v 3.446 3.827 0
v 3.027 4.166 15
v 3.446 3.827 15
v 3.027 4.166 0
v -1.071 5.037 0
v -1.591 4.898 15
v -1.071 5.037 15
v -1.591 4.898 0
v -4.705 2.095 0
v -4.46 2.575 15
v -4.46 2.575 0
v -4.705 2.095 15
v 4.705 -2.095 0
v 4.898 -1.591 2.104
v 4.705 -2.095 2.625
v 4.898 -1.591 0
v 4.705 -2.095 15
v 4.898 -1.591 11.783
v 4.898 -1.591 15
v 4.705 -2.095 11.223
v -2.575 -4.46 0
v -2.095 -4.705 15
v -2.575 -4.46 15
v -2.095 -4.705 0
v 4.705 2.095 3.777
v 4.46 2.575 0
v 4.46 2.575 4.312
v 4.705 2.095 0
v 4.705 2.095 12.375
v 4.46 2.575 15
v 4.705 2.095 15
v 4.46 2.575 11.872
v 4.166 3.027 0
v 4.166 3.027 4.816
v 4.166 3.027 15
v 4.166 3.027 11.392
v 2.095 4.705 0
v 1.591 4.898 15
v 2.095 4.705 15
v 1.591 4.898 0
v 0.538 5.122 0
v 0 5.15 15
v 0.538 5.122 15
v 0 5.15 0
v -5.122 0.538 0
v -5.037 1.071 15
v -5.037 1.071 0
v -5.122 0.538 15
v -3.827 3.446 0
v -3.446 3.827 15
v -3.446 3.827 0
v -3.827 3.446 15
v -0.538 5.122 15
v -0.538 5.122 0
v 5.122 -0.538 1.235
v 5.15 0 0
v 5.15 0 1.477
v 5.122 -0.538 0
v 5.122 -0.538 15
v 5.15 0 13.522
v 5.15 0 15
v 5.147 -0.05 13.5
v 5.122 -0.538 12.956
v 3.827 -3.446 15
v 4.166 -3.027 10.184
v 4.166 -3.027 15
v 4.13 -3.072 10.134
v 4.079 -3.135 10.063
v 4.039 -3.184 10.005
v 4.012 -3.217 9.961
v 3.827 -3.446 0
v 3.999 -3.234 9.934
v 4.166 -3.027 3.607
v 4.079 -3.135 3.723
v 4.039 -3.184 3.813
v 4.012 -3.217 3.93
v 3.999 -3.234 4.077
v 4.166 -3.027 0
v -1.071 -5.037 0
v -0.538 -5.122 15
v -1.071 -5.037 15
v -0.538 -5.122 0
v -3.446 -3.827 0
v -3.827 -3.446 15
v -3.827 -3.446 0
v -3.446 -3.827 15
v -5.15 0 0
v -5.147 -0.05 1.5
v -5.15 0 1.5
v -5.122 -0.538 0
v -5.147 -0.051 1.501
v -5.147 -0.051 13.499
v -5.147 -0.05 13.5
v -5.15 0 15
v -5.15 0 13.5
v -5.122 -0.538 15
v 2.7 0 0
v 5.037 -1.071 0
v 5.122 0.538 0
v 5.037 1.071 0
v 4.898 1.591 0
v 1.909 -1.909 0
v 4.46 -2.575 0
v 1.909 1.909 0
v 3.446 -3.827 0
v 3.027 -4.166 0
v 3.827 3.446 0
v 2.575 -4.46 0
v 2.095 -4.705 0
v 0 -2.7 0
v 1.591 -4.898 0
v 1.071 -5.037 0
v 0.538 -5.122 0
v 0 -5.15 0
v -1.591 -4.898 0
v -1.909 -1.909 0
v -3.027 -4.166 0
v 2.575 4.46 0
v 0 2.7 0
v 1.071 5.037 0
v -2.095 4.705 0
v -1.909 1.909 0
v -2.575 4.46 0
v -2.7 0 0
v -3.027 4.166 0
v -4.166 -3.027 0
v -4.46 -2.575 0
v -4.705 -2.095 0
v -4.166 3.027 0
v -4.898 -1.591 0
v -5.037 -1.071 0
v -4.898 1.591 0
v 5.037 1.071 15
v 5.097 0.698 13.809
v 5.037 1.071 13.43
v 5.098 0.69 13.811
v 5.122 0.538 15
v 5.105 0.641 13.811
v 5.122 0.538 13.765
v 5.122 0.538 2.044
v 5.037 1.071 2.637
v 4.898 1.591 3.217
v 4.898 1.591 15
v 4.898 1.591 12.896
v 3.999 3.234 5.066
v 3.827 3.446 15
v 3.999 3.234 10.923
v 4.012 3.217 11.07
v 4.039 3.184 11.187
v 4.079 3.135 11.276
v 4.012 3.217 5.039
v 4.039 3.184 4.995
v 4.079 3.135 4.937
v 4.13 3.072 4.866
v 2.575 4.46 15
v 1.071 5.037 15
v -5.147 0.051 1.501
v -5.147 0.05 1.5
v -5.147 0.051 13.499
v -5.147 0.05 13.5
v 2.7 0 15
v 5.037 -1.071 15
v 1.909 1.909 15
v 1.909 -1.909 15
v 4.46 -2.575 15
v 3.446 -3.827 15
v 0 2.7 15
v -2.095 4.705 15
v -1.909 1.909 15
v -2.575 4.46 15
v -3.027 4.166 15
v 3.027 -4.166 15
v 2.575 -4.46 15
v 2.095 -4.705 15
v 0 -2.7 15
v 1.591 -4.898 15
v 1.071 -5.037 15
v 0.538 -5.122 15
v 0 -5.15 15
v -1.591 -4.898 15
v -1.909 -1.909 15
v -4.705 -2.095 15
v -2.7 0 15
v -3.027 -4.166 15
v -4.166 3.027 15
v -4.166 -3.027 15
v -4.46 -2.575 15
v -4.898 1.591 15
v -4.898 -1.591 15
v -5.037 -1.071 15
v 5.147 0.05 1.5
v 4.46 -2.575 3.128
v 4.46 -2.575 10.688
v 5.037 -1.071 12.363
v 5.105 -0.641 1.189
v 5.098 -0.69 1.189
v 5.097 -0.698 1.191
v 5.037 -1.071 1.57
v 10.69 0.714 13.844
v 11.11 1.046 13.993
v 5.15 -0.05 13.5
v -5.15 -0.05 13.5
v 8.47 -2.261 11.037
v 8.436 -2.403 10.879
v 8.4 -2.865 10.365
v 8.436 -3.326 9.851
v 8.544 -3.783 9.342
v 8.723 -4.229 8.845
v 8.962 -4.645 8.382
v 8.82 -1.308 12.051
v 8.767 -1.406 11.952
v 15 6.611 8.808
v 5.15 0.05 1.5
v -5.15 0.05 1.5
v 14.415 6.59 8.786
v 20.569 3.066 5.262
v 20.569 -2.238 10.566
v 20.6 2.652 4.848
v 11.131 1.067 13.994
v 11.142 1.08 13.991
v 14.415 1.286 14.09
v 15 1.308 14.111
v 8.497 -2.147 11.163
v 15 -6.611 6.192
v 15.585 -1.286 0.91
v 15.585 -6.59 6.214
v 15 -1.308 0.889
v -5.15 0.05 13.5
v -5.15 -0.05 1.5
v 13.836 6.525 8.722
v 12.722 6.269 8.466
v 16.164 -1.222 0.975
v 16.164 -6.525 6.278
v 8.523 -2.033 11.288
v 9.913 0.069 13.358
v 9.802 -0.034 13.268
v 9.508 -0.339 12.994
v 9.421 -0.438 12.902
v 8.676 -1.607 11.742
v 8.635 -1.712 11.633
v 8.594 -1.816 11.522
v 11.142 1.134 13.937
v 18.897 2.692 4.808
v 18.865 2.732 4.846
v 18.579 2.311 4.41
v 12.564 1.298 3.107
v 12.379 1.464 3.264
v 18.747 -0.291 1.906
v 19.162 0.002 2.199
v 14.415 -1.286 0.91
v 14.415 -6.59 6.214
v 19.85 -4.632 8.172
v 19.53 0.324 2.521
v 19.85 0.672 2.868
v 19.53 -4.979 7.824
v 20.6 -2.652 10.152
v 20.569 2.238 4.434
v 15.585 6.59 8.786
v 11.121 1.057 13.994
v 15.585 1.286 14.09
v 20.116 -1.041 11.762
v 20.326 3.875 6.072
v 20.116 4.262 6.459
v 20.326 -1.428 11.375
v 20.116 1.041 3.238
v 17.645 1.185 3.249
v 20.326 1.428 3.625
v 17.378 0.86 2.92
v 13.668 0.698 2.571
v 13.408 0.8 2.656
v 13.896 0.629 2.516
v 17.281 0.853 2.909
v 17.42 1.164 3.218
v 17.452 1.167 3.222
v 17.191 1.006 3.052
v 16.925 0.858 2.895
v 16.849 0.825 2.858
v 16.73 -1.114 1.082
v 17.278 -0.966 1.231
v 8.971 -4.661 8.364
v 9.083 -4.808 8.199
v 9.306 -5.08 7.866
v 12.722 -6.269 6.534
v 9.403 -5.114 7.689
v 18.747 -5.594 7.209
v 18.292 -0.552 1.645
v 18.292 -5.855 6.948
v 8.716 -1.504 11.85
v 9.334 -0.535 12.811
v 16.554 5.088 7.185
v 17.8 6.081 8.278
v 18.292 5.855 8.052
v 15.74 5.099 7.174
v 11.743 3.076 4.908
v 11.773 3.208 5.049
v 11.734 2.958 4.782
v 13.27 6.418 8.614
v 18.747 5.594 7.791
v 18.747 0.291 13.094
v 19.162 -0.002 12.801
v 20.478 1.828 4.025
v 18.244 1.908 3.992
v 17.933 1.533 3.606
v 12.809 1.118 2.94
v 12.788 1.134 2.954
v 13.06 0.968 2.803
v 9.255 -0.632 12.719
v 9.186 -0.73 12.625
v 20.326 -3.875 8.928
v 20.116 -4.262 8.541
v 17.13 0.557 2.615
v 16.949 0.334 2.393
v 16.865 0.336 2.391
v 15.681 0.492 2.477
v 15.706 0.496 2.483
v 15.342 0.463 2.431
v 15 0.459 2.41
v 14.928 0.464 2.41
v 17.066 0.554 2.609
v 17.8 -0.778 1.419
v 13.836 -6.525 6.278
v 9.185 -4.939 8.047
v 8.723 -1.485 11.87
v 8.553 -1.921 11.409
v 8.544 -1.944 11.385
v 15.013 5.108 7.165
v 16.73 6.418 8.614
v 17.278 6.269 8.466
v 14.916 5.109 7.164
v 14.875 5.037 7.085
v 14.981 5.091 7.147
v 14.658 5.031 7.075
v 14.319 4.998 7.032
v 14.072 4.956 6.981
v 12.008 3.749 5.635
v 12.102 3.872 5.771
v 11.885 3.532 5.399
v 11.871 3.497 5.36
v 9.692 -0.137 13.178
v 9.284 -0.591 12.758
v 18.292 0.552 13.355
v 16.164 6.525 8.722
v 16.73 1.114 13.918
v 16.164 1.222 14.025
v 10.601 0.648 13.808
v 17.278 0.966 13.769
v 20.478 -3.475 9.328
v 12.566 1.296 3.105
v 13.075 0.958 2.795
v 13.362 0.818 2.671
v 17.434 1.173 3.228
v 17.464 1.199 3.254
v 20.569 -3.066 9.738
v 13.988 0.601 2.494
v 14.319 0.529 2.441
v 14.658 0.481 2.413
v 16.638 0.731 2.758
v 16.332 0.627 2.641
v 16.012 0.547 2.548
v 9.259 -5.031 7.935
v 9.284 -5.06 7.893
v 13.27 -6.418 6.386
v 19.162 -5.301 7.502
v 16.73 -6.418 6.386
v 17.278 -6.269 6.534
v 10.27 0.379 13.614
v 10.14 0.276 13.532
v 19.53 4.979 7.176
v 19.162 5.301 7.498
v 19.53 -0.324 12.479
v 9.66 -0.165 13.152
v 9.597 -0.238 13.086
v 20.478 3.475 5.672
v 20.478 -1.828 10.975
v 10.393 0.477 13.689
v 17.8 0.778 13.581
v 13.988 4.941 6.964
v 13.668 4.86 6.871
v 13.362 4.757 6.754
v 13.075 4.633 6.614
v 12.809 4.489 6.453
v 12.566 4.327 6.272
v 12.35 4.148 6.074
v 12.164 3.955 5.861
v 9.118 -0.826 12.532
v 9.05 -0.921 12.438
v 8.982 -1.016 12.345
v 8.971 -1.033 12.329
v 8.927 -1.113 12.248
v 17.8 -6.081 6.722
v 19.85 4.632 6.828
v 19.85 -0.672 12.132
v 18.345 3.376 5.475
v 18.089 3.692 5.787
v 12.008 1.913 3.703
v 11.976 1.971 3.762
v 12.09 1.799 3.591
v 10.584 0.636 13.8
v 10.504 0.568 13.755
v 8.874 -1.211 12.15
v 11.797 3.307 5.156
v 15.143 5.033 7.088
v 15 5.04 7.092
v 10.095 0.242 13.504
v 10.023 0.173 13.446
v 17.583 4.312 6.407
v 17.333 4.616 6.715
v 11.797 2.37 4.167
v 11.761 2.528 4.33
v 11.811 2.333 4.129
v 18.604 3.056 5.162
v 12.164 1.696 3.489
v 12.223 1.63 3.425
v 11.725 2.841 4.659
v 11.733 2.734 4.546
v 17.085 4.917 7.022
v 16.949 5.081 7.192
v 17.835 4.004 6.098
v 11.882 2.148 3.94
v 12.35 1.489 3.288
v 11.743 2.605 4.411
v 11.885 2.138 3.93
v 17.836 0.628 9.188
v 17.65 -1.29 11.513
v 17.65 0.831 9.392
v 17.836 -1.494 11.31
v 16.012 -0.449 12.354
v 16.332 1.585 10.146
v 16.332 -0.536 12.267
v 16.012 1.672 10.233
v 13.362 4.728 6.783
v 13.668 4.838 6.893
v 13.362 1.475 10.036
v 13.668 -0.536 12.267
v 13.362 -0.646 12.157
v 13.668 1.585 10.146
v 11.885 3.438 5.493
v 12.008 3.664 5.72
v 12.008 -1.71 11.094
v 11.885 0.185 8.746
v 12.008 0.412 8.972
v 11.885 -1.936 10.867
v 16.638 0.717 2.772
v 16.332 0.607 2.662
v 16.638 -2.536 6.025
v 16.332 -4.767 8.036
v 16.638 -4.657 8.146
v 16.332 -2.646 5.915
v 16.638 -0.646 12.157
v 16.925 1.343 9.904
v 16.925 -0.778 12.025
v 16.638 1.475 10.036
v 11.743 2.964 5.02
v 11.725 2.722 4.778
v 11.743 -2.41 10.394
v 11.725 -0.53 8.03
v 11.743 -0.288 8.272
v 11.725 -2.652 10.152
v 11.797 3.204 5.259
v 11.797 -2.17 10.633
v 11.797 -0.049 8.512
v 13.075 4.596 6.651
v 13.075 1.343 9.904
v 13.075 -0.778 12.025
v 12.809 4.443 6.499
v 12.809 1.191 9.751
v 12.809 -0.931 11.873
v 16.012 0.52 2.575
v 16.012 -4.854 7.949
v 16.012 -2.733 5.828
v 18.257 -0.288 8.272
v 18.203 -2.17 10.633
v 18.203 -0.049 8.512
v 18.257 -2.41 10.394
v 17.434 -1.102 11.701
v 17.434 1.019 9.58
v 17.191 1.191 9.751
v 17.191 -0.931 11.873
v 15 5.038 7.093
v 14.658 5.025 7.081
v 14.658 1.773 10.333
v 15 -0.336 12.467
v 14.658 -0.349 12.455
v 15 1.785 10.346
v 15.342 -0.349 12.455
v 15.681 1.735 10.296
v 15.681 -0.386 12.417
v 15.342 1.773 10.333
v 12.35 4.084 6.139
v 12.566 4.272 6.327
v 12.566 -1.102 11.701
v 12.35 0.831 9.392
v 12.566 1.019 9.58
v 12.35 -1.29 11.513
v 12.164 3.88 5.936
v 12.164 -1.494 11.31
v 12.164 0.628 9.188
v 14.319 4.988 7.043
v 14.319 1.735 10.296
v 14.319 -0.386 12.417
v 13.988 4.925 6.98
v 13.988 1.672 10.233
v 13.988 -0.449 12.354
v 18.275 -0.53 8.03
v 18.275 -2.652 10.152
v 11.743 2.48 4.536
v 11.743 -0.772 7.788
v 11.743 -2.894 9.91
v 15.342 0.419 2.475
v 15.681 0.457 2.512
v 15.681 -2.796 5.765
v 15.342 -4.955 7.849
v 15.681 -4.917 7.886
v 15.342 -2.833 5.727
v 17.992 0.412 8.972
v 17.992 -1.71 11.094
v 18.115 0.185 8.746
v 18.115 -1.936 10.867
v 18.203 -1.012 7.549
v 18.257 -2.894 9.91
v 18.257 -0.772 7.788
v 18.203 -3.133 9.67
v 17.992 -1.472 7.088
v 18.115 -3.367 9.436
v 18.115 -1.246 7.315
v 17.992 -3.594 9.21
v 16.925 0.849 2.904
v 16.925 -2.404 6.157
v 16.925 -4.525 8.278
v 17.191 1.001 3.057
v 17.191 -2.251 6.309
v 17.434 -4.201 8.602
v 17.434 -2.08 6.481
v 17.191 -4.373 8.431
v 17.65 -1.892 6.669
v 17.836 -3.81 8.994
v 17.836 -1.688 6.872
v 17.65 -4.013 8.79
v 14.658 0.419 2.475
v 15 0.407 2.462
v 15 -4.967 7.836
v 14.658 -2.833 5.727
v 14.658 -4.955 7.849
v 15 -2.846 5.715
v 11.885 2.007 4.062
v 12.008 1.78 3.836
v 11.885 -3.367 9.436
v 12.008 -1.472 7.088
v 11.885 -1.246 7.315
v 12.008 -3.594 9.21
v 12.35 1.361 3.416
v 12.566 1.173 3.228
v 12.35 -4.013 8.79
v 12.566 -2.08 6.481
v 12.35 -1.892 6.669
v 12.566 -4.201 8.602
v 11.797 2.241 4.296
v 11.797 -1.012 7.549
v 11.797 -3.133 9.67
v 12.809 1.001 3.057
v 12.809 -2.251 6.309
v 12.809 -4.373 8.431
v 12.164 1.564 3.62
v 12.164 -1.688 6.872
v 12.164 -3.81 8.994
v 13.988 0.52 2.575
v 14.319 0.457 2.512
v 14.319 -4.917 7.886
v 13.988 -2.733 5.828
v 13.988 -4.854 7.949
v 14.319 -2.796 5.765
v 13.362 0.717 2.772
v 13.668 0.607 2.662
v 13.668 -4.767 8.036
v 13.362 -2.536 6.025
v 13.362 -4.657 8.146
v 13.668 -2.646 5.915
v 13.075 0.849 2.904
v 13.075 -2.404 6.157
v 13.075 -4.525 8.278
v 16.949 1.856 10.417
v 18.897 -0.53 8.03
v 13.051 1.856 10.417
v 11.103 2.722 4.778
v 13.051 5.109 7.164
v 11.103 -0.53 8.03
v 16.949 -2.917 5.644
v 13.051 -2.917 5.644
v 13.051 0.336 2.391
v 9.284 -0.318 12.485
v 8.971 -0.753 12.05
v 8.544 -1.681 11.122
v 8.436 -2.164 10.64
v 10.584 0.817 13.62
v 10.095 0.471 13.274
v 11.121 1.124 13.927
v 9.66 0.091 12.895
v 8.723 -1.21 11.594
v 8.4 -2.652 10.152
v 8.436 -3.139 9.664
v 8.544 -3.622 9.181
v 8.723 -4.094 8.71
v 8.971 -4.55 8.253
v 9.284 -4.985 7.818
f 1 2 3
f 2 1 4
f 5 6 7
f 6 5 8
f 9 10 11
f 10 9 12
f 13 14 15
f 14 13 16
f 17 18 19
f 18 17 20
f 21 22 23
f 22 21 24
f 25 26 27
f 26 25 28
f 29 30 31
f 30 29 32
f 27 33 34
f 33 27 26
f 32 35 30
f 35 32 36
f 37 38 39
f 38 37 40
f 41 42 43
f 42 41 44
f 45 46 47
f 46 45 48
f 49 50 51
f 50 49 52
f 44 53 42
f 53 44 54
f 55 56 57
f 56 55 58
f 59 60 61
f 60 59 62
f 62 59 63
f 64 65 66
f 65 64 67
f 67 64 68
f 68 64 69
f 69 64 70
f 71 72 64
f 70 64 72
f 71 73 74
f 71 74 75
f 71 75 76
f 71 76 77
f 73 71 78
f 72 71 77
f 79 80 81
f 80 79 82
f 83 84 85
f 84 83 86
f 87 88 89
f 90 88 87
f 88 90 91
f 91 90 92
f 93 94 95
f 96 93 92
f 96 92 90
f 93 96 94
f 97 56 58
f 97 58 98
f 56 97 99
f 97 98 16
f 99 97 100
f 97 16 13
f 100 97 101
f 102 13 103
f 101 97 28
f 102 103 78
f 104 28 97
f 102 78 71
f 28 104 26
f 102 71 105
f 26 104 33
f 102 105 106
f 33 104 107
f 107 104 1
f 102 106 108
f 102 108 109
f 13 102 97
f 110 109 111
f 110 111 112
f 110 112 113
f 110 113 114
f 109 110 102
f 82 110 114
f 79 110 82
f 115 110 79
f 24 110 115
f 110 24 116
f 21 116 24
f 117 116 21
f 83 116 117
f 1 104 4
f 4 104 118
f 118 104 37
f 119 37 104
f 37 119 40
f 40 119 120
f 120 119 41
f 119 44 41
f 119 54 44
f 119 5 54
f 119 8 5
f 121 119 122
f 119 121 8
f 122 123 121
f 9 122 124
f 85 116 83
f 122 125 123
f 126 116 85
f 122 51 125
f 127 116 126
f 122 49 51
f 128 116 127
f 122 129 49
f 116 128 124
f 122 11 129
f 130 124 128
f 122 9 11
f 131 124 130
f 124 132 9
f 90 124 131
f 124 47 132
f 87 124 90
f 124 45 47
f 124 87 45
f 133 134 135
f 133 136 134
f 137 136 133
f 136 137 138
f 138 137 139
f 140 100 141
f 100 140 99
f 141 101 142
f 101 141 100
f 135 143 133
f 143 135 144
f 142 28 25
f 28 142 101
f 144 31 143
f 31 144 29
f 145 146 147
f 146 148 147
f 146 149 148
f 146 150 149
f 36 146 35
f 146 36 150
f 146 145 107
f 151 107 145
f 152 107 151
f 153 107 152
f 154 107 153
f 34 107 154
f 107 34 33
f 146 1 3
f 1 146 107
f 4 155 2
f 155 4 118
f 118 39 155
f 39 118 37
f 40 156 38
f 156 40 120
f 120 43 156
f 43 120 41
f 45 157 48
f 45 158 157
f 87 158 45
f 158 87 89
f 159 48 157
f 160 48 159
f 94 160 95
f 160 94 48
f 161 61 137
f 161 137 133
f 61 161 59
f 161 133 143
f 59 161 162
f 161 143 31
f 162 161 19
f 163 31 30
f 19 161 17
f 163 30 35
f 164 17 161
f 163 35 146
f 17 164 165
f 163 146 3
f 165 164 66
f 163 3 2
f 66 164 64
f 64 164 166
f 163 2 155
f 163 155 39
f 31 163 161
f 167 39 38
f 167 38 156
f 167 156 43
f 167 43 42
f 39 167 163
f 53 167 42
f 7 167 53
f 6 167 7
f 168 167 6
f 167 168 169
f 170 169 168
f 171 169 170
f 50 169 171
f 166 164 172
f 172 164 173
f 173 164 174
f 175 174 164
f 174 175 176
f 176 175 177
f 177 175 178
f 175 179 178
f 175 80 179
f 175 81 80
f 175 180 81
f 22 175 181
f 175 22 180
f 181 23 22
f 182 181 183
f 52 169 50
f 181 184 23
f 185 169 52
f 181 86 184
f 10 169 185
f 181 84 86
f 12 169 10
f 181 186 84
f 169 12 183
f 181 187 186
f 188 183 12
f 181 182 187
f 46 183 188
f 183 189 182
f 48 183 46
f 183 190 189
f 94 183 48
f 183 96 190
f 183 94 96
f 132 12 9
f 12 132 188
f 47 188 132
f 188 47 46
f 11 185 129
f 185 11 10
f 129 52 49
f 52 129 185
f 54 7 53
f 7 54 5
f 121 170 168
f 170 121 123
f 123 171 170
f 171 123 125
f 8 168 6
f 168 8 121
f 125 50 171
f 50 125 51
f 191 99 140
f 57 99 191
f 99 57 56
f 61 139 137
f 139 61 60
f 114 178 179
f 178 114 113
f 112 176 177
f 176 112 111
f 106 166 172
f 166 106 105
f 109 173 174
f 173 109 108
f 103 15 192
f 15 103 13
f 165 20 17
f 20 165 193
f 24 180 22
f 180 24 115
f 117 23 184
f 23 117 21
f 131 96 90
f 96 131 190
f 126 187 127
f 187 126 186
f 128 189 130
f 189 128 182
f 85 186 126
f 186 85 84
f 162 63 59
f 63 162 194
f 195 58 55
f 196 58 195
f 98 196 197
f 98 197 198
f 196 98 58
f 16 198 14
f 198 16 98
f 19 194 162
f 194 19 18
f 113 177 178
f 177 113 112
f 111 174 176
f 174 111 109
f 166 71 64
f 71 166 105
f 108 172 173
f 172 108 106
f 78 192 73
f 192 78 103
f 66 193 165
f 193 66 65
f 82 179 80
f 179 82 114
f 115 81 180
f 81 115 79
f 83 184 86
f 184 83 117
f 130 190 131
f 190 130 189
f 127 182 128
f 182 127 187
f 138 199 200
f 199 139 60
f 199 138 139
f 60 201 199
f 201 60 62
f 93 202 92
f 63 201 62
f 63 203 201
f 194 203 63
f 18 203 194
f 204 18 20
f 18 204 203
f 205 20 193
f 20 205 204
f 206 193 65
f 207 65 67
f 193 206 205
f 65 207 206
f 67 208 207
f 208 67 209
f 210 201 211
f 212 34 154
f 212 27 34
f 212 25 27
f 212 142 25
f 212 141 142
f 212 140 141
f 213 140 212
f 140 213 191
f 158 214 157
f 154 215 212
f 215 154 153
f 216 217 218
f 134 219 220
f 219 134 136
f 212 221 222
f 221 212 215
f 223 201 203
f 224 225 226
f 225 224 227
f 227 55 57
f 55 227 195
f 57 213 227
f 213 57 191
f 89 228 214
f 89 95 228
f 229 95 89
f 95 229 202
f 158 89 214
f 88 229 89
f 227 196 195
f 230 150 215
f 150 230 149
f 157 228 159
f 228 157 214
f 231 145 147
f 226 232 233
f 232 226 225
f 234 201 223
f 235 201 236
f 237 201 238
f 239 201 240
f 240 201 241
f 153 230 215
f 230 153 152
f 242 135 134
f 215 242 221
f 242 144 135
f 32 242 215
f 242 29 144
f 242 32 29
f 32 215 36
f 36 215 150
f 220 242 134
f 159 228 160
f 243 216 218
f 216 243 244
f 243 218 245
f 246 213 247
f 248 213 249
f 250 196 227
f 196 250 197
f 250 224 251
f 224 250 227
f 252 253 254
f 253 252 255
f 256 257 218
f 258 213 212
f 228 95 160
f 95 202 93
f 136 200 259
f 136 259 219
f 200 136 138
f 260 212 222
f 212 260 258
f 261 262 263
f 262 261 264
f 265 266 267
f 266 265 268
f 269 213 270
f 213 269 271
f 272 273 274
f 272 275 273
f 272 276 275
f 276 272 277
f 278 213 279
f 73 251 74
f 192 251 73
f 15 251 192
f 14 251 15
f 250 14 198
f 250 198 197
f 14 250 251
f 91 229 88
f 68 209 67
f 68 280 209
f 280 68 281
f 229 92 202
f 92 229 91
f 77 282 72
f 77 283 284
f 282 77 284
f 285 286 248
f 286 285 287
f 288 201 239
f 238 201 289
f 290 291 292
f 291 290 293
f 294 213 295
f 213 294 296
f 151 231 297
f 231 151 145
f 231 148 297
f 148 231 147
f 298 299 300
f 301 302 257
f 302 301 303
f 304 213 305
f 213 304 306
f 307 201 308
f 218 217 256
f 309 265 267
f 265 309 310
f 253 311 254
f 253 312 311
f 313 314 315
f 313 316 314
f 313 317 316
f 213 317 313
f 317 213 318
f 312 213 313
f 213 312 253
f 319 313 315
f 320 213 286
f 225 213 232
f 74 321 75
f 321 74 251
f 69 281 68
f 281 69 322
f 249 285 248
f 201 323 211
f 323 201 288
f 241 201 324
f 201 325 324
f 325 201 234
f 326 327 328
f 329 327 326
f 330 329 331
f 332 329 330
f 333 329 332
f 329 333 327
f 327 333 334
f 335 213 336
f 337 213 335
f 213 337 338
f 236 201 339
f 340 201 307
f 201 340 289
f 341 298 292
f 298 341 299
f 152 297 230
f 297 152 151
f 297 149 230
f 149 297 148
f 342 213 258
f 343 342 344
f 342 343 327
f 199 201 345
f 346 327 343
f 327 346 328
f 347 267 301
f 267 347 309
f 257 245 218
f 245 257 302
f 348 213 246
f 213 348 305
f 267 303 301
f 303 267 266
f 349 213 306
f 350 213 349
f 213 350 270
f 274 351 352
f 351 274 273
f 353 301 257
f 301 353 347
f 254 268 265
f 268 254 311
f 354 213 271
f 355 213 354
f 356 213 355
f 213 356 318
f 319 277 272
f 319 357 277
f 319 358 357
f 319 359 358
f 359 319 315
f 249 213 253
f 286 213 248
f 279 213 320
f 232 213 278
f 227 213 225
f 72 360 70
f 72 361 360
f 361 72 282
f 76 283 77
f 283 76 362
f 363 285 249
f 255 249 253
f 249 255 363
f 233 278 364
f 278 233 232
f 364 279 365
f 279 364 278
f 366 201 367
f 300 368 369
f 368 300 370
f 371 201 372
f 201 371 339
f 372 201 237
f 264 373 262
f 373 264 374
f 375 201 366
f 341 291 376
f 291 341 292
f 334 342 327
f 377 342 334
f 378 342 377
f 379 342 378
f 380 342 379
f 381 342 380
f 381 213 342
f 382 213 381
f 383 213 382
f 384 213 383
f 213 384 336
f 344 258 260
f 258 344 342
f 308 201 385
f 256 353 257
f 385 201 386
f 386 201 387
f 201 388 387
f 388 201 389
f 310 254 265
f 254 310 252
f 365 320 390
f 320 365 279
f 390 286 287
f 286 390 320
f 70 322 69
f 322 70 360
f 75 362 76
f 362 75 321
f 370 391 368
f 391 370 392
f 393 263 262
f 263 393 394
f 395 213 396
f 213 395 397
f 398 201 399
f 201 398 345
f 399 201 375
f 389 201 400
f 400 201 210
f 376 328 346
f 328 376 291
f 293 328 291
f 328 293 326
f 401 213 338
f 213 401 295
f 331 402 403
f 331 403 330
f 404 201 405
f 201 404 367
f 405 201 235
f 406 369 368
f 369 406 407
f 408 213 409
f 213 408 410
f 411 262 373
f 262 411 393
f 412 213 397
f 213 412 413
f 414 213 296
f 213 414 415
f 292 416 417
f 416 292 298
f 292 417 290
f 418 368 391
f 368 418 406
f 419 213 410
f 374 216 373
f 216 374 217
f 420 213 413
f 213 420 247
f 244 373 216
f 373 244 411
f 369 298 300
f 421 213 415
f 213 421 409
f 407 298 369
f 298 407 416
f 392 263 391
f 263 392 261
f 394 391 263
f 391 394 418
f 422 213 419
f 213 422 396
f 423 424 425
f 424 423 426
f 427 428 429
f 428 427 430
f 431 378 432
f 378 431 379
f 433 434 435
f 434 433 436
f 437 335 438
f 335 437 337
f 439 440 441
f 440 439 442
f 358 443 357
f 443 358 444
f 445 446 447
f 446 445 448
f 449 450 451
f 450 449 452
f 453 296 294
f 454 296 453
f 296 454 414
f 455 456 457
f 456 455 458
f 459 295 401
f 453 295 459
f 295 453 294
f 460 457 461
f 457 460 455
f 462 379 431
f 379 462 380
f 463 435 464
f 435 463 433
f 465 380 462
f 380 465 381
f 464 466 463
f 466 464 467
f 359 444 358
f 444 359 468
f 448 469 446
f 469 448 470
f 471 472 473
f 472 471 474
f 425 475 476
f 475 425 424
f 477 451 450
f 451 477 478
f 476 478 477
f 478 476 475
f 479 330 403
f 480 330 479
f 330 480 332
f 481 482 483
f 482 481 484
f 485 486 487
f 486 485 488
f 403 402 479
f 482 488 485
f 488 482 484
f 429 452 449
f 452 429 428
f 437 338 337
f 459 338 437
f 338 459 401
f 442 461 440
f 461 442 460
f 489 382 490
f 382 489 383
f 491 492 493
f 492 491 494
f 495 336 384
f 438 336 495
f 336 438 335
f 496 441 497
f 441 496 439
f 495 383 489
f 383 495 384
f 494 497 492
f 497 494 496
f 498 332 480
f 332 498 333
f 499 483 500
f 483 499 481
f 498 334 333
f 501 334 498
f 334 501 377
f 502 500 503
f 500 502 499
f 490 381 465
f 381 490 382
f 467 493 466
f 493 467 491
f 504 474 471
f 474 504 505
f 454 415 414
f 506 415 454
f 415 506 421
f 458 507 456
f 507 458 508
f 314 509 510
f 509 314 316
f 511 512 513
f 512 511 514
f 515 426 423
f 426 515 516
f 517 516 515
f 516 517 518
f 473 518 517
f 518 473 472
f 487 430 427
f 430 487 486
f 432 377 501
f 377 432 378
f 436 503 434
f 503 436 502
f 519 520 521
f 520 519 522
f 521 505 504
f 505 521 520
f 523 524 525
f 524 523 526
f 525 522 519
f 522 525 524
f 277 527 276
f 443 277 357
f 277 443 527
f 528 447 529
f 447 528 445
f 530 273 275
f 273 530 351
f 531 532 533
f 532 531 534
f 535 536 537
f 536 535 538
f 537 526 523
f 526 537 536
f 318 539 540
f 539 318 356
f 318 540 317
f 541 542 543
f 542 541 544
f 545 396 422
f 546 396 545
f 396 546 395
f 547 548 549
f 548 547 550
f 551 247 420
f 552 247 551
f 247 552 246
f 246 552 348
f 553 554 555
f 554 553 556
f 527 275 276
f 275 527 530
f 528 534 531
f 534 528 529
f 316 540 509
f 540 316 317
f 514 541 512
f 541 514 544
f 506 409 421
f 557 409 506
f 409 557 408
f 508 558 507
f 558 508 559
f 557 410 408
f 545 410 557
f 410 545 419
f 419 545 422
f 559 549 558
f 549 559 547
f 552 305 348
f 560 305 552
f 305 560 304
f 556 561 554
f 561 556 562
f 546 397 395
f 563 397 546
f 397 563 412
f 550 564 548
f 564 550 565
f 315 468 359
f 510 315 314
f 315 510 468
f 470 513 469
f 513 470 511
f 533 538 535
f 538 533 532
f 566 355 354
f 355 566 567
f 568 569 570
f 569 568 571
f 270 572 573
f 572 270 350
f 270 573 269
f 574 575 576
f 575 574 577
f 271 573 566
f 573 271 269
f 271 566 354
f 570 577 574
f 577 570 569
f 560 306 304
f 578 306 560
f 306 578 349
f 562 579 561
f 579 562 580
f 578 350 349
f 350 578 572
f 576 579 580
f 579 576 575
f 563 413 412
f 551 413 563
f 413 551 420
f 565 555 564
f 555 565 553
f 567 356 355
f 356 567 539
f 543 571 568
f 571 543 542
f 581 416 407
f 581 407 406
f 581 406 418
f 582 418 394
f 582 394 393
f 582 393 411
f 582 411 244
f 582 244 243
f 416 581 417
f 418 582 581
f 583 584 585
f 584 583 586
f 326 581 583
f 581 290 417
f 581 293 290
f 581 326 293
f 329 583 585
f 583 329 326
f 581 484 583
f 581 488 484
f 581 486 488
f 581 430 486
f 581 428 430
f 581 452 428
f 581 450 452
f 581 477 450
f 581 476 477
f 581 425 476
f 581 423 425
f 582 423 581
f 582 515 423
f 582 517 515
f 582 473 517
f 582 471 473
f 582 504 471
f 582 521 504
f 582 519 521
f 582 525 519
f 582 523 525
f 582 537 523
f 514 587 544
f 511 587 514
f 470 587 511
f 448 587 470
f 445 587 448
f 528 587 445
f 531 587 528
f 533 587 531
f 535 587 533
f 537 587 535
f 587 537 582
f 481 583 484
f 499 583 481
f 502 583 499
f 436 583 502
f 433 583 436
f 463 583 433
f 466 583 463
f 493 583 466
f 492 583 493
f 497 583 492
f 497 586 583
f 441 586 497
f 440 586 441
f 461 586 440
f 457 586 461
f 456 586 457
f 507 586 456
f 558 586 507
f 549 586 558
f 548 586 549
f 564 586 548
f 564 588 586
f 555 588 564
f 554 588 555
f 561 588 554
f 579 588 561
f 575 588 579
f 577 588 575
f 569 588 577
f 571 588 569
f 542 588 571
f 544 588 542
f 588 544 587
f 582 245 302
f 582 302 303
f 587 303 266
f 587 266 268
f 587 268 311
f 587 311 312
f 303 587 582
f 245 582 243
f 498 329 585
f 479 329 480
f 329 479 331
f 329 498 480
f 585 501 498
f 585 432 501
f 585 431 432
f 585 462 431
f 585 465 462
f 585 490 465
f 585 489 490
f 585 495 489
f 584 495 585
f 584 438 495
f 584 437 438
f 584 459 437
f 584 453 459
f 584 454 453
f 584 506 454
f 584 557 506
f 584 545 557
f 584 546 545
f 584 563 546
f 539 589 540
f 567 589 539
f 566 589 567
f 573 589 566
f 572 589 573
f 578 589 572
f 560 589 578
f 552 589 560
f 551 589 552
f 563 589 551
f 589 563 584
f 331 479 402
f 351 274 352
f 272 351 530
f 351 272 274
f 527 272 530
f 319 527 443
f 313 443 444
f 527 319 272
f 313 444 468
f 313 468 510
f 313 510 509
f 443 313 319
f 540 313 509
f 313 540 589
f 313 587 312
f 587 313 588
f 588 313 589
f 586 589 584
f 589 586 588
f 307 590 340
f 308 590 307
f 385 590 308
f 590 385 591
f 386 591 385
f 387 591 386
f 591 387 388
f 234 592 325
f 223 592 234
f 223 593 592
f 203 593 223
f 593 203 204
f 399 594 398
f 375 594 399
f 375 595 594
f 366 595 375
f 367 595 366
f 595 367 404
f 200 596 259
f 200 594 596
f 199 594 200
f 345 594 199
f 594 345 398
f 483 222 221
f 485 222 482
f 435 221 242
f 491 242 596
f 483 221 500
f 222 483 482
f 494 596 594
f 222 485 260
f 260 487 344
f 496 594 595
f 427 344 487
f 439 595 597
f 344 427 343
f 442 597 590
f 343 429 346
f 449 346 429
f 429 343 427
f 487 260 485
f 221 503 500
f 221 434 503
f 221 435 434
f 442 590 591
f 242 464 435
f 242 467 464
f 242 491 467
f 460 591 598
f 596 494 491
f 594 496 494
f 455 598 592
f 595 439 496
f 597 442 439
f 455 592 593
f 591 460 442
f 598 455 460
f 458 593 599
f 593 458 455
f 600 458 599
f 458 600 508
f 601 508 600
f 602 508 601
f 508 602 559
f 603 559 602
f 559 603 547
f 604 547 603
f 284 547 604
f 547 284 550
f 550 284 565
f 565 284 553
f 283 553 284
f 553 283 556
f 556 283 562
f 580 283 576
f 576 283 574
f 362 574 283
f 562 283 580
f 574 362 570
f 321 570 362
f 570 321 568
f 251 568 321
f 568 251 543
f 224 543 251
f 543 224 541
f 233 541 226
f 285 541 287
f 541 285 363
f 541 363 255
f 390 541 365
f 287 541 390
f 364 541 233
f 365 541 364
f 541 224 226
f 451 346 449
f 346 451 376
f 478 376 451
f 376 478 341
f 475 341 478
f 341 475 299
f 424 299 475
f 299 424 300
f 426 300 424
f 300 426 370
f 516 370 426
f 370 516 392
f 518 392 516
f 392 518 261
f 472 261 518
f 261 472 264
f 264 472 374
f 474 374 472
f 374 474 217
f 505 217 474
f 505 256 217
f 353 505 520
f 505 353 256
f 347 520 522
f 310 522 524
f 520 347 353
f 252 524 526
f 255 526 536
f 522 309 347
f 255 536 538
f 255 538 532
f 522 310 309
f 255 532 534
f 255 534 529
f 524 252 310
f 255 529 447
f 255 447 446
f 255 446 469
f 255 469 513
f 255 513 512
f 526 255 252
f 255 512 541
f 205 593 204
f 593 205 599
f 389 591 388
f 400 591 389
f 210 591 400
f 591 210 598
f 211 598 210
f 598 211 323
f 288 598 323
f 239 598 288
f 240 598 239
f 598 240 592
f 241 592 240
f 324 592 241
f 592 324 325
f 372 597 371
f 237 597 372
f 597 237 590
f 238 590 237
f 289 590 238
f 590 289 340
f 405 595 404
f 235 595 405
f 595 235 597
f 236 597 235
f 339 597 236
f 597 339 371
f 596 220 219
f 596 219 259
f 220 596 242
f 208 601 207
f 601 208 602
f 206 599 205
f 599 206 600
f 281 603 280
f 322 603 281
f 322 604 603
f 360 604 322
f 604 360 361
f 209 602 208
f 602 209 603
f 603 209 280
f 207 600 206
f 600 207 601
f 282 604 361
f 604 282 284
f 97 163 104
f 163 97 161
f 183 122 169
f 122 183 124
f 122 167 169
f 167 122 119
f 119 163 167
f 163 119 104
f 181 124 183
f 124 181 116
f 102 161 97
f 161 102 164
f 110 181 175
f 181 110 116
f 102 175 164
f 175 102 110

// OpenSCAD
// =============================================================================
// PROJECT: OPTIMIZED SMA MOUNT
// VERSION: 1.9 (Educational / Library Edition)
// DESCRIPTION: A compact, high-strength SMA mount designed for TPU printing.
//              Features a "Hex-Lock" to keep the antenna pigtail from spinning.
// =============================================================================

/* [1. FRAME SETTINGS] */

// The diameter of your aluminum standoff.
standoff_dia    = 5.5;   

// The total height of the part that slides over the standoff.
sleeve_height   = 15.0;  

// Thickness of the TPU walls. 2.4mm is a "magic number" (6 walls @ 0.4mm nozzle).
wall_thickness  = 2.4; 

/* [2. ANTENNA ORIENTATION] */

// The "Twist" or Roll. 0 = Antenna points up, 90 = Antenna points sideways.
antenna_roll    = 45;    

// How far the center of the antenna sits from the center of the standoff.
offset_dist     = 15.0;  

/* [3. SMA HARDWARE SPECS] */

// The threaded part of the SMA pigtail.
sma_hole_dia    = 6.4;   

// The width of the metal nut (flat-to-flat).
sma_hex_size    = 6.6;   

// How deep the nut sits inside the TPU (standard is 4mm - 5mm).
sma_hex_depth   = 4.5;   

// The "ceiling" thickness above the nut that the antenna washer sits on.
ceiling_thick   = 3.0; 

/* [4. PRINT OPTIMIZATION] */

// Adds a tiny bit of extra room so hardware fits even with TPU shrinkage.
fit_tolerance   = 0.15; 

// The "Resolution" of your circles. 60 is a sweet spot for FPV parts.
$fn = 60;

/* [5. INTERNAL CALCULATIONS] */

// Total height of the antenna housing head.
housing_h = sma_hex_depth + ceiling_thick;

// Total outer diameter of the antenna housing.
sma_outer_dia = sma_hole_dia + (wall_thickness * 2);

// Finding the middle of the sleeve to center the arm.
mid_point = sleeve_height / 2;

// =============================================================================
// MAIN ASSEMBLY
// =============================================================================

// The 'difference' function tells OpenSCAD: "Take the first object and 
// subtract everything that follows from it."
difference() {
    
    // --- STEP 1: THE SOLID BODY ---
    // We 'union' (glue) these pieces together before cutting holes in them.
    union() {
        
        // A. The Standoff Sleeve (The anchor point)
        cylinder(h=sleeve_height, d=standoff_dia + (wall_thickness*2));
        
        // B. The Structural Bridge (The Stalk)
        translate([0, 0, mid_point]) {
            
            // 'hull' is like stretching a rubber band around two shapes.
            // It creates a smooth, tapered transition between them.
            hull() {
                
                // Shape 1: A tall, thin slice on the side of the sleeve.
                // This spreads the crash-stress across the whole sleeve.
                cube([standoff_dia + (wall_thickness*2), 0.1, sleeve_height * 0.8], center=true);
                
                // Shape 2: The tilted head where the antenna lives.
                translate([offset_dist, 0, 0])
                    rotate([antenna_roll, 0, 0])
                        cylinder(h=housing_h, d=sma_outer_dia, center=true);
            }
        }
    }

    // --- STEP 2: THE SUBTRACTIONS (Cutting the holes) ---
    
    // A. The Standoff Hole
    // We use $fn=8 to make an octagon. This creates 'tension points' that 
    // grip the standoff better than a perfect circle.
    translate([0, 0, -1])
        cylinder(h=sleeve_height + 2, d=standoff_dia - 0.1, $fn=8);

    // B. The SMA Machining
    // We move and rotate EXACTLY like we did in Step 1 to line up the holes.
    translate([offset_dist, 0, mid_point]) {
        rotate([antenna_roll, 0, 0]) {
            
            // 1. The Through-Hole (For the threaded barrel)
            // We make it extra long (+20) so it punches through both sides.
            cylinder(h=housing_h + 20, d=sma_hole_dia + fit_tolerance, center=true);
            
            // 2. The Hex Lock (The Nut Pocket)
            // $fn=6 makes a hexagon. This locks the nut so it won't spin.
            translate([0, 0, -housing_h/2 - 0.1]) 
                cylinder(h=sma_hex_depth + 0.1, d=(sma_hex_size + fit_tolerance) / cos(30), $fn=6);
            
            // 3. The Top Deck Leveler
            // This 'shaves' the top of the tilted head so the washer sits perfectly flat.
            translate([0, 0, housing_h/2])
                cylinder(h=2, d=sma_outer_dia + 2);
        }
    }
}
